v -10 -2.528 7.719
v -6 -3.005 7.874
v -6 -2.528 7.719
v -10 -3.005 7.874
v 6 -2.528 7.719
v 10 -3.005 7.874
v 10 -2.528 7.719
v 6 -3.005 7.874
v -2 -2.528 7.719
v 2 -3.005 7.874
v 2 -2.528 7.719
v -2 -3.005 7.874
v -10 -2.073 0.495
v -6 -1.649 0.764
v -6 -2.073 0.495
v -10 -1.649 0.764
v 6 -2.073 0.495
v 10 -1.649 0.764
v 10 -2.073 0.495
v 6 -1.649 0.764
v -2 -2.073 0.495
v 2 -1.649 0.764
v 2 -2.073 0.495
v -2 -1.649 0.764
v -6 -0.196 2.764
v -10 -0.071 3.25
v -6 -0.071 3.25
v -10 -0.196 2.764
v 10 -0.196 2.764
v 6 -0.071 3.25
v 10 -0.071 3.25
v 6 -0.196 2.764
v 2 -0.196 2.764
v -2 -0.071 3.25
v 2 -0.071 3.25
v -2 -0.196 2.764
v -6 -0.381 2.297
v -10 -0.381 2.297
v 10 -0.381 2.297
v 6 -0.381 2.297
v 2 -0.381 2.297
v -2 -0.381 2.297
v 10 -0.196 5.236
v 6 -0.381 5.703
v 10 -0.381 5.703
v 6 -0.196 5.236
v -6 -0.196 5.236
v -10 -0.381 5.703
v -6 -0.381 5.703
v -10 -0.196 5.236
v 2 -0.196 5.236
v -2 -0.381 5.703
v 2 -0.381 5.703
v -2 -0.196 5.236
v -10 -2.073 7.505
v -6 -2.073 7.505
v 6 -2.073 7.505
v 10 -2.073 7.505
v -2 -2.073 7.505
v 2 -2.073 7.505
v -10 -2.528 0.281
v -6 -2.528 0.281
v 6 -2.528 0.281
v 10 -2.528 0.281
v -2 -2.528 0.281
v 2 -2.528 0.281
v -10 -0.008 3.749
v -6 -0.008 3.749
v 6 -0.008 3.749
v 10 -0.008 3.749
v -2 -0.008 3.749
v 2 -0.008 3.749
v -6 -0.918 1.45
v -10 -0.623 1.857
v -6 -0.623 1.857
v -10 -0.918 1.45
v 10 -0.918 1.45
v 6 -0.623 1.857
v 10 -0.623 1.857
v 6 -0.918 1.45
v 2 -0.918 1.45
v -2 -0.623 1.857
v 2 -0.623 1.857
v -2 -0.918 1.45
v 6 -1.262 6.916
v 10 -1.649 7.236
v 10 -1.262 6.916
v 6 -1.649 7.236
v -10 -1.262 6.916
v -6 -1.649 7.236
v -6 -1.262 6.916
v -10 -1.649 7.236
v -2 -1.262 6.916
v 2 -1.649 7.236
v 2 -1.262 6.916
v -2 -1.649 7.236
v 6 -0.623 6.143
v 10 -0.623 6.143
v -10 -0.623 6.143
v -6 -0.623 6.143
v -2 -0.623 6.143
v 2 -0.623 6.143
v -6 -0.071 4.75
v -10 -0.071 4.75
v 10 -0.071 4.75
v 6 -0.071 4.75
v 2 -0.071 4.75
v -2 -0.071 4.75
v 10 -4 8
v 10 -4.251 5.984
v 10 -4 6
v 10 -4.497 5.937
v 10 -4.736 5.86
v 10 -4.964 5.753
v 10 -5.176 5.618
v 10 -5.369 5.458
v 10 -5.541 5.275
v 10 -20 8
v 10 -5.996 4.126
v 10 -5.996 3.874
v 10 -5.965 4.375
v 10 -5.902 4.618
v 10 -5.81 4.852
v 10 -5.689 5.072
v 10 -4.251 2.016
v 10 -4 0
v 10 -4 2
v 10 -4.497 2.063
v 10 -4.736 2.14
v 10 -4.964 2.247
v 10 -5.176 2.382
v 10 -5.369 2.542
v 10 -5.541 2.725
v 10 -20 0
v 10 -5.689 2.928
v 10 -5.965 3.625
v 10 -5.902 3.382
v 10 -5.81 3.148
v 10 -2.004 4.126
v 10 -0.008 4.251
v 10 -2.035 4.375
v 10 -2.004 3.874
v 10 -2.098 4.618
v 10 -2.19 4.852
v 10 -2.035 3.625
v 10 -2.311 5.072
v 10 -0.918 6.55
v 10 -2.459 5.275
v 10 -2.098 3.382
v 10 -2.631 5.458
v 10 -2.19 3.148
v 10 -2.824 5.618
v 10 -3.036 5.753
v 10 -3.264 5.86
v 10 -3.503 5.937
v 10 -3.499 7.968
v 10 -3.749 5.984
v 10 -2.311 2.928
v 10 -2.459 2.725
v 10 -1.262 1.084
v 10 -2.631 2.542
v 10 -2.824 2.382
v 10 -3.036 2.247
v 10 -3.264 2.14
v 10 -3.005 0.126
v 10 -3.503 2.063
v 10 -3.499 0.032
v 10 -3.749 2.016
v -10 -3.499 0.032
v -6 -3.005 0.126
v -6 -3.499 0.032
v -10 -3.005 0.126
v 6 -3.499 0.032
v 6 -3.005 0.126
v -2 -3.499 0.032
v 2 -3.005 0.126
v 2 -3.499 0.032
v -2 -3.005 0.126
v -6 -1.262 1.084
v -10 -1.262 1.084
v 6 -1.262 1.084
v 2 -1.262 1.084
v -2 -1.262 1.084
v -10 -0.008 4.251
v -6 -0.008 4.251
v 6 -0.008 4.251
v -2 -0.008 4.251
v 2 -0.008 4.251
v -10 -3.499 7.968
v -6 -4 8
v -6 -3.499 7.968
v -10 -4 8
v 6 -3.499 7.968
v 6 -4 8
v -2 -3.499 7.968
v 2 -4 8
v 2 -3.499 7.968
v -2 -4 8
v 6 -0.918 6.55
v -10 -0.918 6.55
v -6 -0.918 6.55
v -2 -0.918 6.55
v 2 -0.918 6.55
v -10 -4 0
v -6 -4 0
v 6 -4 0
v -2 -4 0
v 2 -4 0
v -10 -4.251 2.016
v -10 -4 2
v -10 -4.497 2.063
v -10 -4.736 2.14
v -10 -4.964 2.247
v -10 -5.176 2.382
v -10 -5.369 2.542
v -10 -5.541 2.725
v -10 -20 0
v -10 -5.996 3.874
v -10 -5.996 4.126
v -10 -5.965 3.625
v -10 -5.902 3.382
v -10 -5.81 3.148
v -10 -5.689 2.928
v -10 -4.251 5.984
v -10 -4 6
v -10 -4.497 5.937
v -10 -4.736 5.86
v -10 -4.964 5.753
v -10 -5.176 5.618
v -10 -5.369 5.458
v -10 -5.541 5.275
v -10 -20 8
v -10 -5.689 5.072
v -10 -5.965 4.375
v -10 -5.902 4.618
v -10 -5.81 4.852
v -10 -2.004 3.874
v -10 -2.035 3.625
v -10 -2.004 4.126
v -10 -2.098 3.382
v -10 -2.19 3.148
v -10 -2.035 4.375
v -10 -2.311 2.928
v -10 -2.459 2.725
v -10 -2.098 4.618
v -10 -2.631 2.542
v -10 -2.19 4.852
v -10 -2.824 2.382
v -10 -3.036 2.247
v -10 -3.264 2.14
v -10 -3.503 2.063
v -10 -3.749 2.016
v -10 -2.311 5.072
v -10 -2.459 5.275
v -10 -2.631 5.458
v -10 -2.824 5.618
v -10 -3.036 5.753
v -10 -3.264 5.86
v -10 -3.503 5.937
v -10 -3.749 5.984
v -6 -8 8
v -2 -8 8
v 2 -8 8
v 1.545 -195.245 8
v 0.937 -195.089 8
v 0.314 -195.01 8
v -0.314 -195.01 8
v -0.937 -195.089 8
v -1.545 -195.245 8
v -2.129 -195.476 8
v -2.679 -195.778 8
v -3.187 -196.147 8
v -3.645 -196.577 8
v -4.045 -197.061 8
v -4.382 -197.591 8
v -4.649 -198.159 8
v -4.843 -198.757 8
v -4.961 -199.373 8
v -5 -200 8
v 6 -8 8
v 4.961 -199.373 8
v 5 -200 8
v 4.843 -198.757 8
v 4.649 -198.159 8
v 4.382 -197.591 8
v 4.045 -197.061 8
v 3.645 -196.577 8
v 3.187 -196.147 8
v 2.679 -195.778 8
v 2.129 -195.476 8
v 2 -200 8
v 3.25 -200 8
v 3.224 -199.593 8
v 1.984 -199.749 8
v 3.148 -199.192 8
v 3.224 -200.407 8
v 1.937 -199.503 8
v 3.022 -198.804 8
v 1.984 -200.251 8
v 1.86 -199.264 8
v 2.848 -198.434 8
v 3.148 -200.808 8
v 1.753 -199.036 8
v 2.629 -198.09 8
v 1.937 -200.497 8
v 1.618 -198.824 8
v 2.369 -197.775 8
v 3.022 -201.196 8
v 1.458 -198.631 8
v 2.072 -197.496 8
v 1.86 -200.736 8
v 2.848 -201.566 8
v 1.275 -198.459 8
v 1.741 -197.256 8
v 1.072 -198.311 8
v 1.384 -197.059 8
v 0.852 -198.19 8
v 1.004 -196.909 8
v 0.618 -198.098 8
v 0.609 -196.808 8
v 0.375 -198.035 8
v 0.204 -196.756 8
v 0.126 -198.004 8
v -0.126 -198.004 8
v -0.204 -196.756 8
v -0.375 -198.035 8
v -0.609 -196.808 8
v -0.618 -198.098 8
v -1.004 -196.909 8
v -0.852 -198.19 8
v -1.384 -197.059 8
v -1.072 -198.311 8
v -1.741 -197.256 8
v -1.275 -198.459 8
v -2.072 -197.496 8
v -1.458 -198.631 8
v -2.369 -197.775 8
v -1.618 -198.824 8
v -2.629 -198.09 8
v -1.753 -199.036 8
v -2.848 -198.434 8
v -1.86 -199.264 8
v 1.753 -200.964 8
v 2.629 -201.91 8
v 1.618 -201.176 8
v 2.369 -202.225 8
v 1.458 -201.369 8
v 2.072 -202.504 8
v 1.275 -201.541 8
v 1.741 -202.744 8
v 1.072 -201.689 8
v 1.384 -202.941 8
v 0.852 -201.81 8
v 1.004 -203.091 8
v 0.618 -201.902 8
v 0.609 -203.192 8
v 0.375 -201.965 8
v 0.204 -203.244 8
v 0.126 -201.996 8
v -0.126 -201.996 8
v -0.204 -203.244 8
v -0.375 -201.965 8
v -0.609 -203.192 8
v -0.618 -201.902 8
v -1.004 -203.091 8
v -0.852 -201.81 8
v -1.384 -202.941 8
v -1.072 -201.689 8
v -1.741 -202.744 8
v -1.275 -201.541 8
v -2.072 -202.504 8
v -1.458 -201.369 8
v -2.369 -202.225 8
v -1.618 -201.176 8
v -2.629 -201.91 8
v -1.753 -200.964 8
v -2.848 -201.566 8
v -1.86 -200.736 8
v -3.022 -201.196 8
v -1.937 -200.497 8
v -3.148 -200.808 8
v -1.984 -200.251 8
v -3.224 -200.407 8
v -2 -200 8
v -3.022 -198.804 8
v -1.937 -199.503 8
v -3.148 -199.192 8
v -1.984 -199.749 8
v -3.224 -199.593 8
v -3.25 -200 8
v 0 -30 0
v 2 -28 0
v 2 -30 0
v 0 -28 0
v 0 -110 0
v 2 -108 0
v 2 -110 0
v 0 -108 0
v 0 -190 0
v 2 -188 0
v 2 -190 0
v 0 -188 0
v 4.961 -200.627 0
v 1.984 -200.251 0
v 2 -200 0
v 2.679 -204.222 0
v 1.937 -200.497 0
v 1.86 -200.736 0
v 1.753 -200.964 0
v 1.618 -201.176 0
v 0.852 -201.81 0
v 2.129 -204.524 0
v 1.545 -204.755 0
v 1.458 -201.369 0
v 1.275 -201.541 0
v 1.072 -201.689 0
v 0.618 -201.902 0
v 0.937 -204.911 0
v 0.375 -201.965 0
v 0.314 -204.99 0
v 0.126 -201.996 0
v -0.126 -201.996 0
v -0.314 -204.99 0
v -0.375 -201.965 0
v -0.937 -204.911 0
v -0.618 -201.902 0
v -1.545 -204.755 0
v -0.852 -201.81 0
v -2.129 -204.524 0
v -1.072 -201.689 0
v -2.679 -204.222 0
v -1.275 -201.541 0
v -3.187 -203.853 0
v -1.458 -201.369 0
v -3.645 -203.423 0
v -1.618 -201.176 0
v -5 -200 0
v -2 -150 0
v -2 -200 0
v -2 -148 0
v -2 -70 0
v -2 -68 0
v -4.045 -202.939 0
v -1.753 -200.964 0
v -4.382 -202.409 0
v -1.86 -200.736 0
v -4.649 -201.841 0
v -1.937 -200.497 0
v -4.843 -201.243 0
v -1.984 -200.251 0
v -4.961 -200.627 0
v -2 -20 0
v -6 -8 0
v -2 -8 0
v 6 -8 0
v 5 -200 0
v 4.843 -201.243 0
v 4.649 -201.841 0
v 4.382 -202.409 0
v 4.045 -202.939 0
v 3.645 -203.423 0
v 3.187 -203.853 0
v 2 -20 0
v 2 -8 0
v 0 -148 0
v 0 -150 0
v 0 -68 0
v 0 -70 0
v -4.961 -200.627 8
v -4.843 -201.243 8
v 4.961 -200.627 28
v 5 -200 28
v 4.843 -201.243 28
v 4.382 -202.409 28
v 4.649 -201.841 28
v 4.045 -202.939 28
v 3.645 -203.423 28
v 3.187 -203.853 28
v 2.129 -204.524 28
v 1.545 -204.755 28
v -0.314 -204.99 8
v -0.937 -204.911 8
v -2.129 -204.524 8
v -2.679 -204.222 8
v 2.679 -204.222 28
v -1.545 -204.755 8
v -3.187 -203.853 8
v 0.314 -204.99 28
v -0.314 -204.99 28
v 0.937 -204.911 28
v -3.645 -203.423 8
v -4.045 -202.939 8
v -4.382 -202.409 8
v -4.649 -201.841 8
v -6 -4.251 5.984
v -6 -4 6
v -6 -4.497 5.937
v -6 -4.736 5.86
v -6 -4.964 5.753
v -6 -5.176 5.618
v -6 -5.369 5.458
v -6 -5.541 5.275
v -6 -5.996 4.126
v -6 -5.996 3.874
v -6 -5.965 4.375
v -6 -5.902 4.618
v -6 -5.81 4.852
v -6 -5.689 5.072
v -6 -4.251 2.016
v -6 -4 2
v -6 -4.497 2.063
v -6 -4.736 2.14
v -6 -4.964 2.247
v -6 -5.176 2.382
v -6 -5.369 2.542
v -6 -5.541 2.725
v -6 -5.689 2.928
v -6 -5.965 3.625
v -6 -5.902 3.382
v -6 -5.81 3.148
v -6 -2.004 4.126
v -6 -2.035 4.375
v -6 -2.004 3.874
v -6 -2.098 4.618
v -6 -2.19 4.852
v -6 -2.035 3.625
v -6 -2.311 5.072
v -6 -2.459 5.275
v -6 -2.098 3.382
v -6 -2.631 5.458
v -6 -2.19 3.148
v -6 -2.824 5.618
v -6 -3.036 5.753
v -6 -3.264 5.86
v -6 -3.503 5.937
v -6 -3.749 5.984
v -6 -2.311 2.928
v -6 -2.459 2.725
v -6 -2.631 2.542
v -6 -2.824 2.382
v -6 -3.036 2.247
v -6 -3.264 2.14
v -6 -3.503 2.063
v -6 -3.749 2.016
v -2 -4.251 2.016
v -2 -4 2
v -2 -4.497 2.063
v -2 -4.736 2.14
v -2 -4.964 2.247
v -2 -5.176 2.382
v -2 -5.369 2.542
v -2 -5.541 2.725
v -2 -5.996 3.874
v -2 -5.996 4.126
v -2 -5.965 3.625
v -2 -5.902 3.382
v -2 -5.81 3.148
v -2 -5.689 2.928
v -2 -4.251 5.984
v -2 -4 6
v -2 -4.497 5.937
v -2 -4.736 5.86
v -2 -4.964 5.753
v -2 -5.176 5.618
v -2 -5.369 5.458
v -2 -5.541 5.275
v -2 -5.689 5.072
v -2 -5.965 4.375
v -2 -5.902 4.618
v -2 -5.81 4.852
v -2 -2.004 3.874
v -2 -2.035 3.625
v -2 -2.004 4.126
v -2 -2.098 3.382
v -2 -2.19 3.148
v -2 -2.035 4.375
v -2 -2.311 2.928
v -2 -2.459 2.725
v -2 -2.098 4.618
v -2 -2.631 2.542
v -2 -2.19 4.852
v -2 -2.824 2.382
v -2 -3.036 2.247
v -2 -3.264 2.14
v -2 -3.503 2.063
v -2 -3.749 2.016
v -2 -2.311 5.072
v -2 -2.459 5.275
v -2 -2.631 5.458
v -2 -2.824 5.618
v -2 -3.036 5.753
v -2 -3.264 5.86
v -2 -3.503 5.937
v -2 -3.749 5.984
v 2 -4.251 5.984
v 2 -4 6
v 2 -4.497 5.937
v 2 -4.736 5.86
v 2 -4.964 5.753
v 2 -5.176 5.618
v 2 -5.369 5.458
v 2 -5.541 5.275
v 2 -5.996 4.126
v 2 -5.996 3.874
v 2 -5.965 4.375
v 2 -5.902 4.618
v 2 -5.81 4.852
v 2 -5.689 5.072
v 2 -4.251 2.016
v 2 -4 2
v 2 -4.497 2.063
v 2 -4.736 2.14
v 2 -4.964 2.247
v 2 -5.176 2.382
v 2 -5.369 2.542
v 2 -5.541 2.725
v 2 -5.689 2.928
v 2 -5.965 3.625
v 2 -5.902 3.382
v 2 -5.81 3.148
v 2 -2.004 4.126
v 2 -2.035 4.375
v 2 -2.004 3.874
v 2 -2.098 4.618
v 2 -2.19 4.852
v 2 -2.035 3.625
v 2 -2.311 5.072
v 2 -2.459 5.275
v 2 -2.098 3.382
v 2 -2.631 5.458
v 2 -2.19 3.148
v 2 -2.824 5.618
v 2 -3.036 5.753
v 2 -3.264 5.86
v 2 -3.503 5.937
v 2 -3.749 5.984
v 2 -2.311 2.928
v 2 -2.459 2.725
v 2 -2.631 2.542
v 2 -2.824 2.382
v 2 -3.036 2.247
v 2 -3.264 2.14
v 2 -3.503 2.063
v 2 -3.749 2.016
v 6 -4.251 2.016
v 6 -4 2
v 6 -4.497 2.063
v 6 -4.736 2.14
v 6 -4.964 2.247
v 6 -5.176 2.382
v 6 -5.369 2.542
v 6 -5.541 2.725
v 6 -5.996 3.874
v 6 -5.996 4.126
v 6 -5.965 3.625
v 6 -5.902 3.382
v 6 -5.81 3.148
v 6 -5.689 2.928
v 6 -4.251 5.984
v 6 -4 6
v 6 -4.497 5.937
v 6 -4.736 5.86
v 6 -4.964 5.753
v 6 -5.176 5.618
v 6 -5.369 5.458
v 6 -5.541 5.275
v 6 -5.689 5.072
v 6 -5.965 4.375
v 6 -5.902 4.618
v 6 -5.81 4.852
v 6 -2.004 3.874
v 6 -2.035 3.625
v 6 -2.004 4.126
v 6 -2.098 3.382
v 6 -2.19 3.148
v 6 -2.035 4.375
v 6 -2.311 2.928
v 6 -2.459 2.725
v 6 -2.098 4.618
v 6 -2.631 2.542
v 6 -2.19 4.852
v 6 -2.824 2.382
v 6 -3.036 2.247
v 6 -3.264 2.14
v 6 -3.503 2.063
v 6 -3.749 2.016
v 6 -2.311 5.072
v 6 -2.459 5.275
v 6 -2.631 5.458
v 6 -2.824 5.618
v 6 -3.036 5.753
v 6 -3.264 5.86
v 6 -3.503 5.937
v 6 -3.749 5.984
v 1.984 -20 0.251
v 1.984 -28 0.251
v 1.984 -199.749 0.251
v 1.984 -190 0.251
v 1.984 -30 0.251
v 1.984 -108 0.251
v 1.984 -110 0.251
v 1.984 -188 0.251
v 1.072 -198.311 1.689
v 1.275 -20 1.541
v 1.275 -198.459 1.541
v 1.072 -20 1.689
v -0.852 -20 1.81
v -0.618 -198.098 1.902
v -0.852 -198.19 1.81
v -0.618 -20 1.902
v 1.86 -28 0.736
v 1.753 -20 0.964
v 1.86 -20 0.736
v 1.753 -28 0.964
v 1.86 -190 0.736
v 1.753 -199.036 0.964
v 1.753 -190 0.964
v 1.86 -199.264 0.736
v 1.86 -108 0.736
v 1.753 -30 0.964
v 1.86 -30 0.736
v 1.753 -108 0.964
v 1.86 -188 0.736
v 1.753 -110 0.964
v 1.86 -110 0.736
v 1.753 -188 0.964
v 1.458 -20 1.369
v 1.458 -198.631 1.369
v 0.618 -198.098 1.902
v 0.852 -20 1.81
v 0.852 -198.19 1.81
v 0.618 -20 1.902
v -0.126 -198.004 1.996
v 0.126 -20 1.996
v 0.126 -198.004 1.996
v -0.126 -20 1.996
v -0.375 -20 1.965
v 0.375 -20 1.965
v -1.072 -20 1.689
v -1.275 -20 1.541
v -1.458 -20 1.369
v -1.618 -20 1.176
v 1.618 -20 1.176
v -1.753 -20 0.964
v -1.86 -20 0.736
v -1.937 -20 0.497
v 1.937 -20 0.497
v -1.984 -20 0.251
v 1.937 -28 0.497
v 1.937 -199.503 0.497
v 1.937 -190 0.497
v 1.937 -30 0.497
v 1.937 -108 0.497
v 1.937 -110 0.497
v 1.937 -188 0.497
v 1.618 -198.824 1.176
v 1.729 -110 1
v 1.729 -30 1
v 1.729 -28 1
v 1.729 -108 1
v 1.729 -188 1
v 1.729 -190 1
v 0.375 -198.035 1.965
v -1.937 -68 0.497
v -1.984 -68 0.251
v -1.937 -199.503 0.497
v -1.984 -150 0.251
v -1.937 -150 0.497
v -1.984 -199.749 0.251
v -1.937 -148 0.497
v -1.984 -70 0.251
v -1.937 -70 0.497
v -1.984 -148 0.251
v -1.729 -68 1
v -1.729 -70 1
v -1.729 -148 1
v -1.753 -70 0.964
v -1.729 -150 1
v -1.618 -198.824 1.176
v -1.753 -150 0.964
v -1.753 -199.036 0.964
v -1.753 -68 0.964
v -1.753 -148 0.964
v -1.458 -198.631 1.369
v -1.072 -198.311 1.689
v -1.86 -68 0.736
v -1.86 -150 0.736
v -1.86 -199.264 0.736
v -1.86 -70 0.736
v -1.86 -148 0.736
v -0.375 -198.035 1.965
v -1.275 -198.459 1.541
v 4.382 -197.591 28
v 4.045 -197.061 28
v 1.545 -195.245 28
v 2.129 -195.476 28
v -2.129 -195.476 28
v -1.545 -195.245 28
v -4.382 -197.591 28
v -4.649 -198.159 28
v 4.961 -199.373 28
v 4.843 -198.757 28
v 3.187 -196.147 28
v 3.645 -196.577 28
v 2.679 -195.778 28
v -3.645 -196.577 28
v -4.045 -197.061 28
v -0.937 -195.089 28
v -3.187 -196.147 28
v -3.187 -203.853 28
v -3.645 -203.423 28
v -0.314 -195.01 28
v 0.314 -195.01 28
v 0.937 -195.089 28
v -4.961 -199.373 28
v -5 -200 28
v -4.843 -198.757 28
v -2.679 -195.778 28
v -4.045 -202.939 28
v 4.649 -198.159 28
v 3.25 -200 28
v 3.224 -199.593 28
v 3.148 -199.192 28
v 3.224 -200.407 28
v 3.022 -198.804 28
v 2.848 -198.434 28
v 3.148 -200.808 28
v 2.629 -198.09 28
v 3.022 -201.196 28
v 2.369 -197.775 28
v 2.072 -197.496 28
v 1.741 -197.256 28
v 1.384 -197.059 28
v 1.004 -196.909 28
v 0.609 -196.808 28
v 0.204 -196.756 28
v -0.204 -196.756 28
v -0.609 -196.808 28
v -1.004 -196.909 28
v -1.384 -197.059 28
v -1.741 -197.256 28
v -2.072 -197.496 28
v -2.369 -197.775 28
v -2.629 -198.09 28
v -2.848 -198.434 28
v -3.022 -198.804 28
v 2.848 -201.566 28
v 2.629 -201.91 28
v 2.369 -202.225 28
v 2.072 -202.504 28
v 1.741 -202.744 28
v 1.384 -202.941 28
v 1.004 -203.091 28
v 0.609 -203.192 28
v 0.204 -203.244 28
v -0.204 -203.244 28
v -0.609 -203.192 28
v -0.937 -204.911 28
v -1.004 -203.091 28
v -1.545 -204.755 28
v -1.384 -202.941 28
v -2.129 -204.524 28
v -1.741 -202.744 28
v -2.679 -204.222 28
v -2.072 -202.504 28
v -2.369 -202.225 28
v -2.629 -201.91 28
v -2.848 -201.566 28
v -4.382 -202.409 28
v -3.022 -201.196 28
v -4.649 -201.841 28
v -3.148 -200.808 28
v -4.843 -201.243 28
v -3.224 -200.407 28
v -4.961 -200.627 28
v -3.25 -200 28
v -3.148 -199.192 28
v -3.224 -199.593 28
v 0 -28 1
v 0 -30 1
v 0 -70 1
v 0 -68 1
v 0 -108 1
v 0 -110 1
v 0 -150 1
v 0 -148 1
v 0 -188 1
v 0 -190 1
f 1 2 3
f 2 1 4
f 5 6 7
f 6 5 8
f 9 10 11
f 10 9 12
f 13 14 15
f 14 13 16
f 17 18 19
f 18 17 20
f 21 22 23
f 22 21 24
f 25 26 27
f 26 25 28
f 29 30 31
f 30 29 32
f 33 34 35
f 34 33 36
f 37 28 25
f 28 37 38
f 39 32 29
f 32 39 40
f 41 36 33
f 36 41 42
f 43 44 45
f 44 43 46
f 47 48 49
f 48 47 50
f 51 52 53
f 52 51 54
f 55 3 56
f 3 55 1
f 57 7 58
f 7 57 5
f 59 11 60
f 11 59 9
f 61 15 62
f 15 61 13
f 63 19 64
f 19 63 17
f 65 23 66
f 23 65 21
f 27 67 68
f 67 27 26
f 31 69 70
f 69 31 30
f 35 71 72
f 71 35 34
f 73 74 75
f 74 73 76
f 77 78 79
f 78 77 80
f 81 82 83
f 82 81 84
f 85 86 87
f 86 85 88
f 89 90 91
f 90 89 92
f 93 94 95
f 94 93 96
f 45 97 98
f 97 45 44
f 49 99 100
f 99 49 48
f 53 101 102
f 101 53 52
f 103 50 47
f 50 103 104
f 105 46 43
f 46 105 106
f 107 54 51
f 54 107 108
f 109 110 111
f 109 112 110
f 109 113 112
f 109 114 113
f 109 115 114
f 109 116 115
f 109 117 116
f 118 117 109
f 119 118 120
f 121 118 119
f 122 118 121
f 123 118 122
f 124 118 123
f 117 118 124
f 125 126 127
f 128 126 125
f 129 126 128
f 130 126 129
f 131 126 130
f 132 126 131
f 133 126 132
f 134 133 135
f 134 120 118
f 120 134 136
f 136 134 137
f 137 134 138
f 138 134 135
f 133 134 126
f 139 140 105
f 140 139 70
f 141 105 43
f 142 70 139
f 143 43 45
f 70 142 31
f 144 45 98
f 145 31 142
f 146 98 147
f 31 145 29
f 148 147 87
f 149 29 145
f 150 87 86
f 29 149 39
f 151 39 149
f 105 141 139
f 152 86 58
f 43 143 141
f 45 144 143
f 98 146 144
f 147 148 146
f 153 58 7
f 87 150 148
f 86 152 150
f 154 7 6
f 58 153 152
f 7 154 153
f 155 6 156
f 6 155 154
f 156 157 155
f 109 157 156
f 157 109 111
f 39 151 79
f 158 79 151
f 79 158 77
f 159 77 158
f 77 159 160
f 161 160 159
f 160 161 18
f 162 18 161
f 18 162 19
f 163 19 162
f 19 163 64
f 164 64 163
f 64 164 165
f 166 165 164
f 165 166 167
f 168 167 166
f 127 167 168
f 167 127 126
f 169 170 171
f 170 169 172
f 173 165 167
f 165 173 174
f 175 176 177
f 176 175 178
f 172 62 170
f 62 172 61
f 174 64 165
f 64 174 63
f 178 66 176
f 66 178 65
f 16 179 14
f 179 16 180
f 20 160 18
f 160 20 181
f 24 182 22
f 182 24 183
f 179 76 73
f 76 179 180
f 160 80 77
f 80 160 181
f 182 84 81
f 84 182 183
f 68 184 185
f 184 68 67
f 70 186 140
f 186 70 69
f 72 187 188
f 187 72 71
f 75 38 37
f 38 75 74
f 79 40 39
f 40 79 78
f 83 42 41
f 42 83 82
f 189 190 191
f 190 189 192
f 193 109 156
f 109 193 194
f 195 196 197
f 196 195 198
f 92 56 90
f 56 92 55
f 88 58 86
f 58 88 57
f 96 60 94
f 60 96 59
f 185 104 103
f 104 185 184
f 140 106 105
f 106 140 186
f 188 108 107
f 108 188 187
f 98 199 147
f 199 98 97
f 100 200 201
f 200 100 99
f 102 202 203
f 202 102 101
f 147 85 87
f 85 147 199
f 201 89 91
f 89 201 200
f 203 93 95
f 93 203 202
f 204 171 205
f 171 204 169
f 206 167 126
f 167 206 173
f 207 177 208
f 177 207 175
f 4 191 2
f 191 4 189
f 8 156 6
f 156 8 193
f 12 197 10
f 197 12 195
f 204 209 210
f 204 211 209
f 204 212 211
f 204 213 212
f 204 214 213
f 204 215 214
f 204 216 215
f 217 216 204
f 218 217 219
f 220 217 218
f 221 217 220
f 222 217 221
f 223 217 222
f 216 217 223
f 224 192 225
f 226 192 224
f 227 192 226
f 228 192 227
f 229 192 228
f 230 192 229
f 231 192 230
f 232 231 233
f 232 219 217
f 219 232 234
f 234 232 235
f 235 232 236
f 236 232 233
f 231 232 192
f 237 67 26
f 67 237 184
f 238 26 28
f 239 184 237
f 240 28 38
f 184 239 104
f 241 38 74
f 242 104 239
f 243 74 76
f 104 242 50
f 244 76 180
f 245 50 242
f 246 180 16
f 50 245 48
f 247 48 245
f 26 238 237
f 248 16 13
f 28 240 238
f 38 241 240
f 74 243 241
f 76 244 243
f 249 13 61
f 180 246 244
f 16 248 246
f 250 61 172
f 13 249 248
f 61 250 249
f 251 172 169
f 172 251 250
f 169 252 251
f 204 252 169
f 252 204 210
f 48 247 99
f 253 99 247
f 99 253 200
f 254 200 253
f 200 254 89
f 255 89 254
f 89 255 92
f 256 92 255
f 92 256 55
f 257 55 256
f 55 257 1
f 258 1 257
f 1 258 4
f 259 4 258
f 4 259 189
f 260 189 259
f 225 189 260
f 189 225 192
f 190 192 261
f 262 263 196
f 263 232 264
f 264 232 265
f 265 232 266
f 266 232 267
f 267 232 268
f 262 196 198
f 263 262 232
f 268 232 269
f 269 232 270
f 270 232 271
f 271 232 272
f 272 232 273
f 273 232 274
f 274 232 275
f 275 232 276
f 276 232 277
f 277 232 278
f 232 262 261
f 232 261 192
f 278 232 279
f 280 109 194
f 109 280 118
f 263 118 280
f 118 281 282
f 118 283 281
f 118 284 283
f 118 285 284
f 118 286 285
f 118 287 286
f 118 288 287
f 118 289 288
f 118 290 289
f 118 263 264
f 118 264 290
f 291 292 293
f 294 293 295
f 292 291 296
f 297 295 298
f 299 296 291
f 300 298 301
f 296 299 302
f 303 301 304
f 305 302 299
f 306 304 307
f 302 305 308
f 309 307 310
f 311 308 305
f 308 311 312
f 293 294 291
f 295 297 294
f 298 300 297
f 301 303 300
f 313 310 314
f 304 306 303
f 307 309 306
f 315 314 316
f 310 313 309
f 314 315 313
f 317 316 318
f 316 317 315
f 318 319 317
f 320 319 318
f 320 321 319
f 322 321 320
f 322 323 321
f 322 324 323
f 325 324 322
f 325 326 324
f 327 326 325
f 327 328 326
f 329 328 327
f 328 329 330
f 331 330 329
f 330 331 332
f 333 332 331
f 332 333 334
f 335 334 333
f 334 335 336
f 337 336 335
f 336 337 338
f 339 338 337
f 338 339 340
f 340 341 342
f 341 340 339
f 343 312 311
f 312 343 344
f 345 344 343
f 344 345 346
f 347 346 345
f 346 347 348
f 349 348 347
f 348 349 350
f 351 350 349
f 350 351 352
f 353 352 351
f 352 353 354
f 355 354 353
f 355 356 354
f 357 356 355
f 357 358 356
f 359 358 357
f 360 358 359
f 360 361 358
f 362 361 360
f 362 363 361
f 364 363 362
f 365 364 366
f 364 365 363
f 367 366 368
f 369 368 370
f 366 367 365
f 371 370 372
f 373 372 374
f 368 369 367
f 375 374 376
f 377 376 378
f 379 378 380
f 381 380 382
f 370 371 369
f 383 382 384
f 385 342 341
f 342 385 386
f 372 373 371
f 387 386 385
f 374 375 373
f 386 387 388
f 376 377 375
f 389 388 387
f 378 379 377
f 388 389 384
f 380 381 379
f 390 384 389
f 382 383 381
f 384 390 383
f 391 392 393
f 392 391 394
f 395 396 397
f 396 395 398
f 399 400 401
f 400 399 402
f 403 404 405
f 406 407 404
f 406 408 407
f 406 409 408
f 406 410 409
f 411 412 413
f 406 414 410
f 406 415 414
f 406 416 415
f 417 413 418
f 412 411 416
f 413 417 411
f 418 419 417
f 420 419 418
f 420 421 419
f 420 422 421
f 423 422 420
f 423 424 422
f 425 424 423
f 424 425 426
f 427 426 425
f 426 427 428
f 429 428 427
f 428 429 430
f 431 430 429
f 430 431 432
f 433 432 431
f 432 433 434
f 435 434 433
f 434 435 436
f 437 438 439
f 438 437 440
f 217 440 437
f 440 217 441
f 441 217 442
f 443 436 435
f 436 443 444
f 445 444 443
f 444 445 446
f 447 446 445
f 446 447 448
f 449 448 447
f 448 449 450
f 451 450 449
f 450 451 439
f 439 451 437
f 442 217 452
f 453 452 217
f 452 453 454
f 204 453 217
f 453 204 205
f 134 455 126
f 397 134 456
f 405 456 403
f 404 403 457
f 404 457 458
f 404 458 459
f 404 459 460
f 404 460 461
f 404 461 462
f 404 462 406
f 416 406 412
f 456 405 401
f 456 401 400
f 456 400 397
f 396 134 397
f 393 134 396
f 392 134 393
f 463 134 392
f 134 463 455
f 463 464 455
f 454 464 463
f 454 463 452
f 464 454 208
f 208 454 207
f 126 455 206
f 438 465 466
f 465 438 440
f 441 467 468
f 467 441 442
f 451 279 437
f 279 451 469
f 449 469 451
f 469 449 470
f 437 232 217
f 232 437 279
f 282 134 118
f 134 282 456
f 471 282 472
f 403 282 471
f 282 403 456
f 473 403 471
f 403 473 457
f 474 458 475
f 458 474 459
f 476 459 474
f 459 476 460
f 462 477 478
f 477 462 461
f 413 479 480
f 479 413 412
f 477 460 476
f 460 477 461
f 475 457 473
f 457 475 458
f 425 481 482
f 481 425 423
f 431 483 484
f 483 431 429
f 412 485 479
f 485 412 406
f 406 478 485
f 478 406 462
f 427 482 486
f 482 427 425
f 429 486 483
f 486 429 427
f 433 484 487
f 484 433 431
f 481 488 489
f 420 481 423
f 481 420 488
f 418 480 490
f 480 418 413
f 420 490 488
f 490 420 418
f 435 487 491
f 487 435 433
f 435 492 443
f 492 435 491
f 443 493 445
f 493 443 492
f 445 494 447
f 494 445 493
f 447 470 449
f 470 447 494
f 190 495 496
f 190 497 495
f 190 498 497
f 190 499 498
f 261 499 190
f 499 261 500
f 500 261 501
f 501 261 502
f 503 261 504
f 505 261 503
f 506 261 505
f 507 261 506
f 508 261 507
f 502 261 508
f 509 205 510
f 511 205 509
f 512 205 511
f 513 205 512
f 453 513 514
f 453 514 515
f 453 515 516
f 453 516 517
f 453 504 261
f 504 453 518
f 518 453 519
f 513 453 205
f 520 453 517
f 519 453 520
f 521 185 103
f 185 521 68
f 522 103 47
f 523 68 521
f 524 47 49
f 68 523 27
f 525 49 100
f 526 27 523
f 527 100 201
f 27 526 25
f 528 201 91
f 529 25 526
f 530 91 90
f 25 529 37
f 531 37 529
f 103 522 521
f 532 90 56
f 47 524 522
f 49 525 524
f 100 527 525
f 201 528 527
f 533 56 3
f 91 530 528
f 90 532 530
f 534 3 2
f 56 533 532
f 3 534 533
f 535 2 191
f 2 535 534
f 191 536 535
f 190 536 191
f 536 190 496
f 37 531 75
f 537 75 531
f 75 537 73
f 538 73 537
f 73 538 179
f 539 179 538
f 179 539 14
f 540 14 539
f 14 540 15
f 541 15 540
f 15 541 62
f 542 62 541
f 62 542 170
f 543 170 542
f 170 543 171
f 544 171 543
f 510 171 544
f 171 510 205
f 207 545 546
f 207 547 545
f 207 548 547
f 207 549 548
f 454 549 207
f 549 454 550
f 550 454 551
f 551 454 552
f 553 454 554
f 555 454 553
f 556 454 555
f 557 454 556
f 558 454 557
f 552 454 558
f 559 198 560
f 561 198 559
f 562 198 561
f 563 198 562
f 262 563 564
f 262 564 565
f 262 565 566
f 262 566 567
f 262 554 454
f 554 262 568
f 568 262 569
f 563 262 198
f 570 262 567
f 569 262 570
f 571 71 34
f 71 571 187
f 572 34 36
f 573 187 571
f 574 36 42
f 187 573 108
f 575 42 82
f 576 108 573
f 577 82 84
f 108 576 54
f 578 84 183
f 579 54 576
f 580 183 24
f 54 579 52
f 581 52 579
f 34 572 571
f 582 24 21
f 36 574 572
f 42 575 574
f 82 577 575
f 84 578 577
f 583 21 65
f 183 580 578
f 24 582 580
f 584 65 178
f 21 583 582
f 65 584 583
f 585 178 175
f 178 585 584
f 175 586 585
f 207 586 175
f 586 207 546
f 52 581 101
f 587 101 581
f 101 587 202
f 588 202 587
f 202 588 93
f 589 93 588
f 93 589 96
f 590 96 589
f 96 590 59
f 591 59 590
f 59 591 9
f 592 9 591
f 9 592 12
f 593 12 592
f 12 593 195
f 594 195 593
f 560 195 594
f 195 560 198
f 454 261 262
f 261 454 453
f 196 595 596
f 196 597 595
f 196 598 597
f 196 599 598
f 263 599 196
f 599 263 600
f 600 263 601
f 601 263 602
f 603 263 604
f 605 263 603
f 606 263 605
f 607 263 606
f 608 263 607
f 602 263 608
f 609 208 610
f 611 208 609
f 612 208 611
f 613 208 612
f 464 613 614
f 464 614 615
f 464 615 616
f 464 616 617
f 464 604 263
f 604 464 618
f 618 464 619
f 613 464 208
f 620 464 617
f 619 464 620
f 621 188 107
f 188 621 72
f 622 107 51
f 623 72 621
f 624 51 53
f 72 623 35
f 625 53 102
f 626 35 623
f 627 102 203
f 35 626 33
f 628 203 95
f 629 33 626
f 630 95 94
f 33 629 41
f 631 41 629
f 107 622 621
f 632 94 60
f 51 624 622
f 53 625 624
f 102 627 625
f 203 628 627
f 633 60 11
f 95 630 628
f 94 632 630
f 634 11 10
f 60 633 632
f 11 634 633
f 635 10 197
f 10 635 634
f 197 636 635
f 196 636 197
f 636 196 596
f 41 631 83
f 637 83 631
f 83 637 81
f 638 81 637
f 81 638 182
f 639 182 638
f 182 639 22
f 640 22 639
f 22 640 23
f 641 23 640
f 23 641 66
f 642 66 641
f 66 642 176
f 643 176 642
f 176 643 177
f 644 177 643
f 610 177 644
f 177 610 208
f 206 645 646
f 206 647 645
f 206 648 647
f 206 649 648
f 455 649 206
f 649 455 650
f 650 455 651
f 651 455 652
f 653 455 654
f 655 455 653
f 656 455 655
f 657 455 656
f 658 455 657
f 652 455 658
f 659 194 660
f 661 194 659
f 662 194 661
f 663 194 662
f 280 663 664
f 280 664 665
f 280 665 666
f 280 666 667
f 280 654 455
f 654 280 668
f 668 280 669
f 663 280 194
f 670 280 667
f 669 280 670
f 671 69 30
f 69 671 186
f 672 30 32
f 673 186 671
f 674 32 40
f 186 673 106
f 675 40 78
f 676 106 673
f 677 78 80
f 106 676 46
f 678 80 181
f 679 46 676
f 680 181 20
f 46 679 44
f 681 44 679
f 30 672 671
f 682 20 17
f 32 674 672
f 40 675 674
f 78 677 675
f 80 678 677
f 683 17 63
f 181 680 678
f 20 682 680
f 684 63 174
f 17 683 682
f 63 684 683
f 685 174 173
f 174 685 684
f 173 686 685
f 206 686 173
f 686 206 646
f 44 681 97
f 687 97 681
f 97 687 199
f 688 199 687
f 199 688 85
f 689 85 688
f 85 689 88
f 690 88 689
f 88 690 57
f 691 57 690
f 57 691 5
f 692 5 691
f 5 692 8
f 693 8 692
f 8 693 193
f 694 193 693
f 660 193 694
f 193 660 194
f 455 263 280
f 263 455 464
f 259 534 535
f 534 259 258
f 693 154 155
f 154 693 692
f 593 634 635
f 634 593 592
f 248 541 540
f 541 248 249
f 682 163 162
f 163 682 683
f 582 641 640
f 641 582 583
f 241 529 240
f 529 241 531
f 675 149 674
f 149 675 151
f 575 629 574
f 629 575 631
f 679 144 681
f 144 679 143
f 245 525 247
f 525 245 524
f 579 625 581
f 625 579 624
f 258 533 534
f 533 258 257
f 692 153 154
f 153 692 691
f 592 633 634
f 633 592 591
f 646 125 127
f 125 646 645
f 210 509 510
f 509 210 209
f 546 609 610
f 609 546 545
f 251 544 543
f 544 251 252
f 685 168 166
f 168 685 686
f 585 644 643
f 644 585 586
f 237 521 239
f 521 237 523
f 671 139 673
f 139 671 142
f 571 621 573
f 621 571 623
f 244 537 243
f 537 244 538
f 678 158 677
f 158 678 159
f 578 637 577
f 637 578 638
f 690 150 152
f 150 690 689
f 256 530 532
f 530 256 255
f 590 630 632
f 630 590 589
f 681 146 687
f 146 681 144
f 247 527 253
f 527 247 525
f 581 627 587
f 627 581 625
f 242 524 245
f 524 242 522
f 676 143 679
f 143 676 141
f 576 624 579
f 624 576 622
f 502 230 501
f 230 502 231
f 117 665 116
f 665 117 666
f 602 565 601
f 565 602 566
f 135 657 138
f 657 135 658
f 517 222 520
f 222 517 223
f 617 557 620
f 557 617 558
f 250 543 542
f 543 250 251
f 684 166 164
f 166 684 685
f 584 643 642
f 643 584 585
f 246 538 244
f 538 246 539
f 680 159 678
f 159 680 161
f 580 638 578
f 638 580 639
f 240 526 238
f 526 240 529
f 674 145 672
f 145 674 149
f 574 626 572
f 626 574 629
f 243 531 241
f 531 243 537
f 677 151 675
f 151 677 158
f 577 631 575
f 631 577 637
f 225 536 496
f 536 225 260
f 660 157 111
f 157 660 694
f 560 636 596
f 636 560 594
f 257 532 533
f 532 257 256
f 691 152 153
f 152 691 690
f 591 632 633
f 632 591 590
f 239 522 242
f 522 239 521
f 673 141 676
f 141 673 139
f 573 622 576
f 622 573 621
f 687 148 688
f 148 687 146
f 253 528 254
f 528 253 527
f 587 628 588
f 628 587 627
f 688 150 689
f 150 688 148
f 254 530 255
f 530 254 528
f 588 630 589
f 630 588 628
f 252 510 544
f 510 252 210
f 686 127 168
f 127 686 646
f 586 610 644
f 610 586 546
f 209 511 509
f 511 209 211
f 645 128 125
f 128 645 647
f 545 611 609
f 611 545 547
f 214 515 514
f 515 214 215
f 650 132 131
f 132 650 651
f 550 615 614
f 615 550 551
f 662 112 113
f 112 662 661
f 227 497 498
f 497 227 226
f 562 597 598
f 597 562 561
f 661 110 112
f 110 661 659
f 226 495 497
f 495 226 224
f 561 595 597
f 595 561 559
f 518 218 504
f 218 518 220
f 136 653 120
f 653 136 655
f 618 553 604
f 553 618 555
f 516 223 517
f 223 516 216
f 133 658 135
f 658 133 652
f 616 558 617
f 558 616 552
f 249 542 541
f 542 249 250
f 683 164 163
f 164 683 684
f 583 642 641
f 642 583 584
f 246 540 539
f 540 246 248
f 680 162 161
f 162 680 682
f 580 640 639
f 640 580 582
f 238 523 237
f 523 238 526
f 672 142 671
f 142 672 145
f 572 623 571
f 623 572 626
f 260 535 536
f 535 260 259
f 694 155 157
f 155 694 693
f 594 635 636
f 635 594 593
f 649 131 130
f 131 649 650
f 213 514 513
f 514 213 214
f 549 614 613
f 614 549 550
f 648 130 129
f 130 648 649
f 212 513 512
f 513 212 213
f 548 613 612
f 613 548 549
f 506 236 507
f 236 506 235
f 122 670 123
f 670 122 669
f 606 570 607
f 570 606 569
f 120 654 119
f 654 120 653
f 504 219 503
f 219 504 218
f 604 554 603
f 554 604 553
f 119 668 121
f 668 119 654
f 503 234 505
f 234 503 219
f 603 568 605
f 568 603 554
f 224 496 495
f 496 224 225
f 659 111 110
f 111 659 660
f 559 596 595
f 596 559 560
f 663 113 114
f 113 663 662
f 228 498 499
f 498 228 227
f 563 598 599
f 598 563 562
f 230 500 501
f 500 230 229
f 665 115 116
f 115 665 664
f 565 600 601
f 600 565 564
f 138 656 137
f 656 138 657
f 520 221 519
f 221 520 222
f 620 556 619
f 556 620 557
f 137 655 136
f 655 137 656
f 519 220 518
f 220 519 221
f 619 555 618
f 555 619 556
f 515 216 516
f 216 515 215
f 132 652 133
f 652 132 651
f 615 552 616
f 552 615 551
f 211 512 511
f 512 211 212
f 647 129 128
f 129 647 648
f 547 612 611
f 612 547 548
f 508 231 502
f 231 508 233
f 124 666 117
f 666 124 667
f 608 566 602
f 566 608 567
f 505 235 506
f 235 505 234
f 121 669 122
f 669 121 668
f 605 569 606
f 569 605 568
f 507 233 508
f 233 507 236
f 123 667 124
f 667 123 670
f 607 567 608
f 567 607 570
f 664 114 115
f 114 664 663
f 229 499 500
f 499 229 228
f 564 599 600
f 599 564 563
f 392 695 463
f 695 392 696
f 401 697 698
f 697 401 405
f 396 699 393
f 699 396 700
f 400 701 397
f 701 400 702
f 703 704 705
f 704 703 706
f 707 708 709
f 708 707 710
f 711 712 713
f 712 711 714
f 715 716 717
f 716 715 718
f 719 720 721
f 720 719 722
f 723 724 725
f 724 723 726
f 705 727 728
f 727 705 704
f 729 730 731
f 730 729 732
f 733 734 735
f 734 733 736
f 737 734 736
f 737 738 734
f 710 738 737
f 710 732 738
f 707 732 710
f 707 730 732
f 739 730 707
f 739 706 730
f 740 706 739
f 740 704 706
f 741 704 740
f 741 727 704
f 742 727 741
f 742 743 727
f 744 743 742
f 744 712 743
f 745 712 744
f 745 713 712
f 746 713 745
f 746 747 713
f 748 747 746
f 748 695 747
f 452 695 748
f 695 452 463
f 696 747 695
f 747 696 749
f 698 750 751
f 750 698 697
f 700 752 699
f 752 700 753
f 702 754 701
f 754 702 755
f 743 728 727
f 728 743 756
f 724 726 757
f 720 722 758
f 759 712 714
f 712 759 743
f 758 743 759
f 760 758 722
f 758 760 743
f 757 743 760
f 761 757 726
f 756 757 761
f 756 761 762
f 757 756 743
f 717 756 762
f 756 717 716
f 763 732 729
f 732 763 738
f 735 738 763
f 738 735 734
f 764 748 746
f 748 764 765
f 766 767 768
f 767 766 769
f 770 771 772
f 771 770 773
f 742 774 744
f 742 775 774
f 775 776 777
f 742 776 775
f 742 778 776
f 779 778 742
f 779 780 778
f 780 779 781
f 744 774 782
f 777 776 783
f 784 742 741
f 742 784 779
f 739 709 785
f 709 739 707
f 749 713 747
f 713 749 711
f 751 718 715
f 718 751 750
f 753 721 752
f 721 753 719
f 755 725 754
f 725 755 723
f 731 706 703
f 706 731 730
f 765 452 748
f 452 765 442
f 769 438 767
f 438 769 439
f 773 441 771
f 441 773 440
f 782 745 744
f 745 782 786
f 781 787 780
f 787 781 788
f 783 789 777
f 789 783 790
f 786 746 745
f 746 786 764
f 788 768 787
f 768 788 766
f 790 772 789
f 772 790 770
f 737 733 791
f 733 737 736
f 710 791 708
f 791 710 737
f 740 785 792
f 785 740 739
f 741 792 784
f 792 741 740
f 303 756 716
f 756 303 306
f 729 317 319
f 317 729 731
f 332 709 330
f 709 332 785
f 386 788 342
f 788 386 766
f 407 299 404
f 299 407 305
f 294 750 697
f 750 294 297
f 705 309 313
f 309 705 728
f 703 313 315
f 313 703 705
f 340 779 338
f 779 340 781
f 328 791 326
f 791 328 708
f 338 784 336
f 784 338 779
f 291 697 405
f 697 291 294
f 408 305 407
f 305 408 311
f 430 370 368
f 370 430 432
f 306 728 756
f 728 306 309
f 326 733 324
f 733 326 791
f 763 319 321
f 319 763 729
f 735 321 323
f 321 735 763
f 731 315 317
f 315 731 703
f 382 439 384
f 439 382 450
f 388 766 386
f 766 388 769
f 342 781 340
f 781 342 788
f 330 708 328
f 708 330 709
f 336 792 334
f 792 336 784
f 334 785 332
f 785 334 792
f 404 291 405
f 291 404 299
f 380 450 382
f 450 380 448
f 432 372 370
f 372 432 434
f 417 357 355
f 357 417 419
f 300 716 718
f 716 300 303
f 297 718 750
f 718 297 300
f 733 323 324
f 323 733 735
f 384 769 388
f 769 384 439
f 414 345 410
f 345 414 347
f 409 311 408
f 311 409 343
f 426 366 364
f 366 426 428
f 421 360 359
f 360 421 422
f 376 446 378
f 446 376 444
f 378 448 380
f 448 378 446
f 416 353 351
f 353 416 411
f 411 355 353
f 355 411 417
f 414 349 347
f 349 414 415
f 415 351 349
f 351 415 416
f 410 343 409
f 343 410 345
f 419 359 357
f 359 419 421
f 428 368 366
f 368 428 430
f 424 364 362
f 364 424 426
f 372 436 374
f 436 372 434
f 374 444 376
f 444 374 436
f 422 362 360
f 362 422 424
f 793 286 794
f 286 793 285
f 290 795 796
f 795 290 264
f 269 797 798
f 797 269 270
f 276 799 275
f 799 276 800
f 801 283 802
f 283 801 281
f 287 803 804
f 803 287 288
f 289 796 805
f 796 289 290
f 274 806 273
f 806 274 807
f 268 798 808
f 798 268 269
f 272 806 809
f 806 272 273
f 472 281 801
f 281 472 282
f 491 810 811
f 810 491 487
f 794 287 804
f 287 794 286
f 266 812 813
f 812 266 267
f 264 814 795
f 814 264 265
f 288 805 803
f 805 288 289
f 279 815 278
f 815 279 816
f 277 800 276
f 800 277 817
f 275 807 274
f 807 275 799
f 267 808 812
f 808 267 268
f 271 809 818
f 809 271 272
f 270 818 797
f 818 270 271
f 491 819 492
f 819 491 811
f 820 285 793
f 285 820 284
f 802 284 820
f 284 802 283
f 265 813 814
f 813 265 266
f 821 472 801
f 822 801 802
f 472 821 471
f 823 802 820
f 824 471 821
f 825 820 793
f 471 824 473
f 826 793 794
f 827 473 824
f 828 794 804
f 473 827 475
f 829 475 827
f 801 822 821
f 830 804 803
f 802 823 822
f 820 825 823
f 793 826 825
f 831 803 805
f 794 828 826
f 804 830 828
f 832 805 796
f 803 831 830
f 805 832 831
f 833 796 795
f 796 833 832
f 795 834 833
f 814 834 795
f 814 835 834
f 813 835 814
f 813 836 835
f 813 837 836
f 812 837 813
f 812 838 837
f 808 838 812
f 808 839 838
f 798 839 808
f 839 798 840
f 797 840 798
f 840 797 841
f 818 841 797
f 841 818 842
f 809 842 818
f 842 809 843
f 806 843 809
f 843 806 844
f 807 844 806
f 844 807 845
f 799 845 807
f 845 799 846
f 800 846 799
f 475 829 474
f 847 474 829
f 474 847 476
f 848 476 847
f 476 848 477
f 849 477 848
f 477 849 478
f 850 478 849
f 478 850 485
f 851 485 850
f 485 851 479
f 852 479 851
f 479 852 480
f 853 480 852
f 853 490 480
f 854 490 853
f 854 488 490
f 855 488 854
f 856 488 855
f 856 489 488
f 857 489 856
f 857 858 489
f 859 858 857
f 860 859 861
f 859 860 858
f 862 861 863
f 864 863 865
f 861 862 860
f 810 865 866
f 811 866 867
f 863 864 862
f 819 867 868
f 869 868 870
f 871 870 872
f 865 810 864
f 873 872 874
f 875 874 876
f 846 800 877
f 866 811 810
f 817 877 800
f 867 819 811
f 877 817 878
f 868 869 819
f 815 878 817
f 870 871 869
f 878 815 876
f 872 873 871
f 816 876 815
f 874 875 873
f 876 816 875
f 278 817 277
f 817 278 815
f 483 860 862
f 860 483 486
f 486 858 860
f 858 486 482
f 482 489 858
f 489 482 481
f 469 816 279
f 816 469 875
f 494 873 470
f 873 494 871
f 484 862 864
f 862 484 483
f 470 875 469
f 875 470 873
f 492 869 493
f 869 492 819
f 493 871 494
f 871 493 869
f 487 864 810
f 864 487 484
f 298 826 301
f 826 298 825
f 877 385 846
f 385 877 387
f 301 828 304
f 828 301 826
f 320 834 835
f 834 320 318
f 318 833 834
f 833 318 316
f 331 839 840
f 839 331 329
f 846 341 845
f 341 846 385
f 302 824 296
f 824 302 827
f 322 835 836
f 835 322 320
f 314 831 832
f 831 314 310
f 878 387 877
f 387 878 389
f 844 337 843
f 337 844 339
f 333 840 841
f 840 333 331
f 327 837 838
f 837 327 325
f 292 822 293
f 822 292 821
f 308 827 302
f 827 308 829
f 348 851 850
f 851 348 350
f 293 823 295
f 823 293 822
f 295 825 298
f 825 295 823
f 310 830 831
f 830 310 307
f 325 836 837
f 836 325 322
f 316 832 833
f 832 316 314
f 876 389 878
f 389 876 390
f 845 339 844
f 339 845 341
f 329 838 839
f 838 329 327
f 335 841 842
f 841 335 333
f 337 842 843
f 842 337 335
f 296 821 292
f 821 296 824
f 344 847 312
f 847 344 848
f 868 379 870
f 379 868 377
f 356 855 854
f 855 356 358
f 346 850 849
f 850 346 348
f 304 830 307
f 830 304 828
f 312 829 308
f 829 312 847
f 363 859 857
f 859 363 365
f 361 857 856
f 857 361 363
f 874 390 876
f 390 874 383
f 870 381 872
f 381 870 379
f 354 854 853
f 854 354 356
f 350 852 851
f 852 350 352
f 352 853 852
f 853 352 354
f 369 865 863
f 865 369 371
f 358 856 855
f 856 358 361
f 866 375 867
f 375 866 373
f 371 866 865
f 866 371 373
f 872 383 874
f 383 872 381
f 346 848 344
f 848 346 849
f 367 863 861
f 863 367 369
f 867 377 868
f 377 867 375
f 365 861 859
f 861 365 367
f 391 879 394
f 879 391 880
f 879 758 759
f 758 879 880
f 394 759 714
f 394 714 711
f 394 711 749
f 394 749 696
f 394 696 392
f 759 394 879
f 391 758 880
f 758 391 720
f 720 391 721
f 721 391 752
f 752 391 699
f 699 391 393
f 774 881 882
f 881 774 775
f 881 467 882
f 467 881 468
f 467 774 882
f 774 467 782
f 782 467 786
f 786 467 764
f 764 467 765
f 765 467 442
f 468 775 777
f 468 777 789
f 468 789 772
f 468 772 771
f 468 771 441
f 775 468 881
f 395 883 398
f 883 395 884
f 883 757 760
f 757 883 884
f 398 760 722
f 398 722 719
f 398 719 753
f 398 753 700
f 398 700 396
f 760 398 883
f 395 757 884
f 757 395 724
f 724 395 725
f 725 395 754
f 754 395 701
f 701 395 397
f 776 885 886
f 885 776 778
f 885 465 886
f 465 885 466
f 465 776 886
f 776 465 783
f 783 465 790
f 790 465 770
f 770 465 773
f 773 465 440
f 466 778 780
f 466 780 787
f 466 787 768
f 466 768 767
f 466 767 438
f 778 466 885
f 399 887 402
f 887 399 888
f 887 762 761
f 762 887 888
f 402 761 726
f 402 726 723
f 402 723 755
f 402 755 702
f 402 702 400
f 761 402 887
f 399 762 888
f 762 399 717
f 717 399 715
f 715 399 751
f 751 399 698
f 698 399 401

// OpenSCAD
$fn=50;

//roundedRect([10,150,5], 3);

fullWidth = 20;
w = fullWidth;
h = 8;
l = 180;
pin=4;
flange = 44;
etube = 10;
d2 = 65;
d1 = 55;
base = 2;
sensor = 20;  // Make it oversize so we can use ground-glass focussing screen
fudge = 1;

module arm()
{
    
module bar() 
{
  intersection()
  {
    linear_extrude(height=h)
      hull()
      {
        translate([fullWidth/2,-l])
          circle(r=5);
        square(size=fullWidth);
      }

    // This rounds off the hinge end
    difference()
    {
      translate([0,-l-fullWidth,0])
        cube([fullWidth,l+fullWidth*2,h]);
      difference()
      {
        translate([0,fullWidth-h/2,0])
          cube([fullWidth,h/2,h]);
        difference()
        {
          translate([0,fullWidth-h/2,h/2])
            rotate([0,90,0])
              cylinder(h=fullWidth,r=h/2);
     //     translate([0,0,0])
       //     cube([fullWidth,fullWidth,h/2]);
          translate([0,0,0])
            cube([fullWidth,fullWidth-h/2,h*2]);
        }
      }
    }
  }
}

module laserMount() 
{
  translate([fullWidth/2,-l,h])
    difference()
    {
      cylinder(h=20,r=5);
      cylinder(h=21,r=3.25);
    }
}

  translate([-w/2,-w,0])
  {
    difference()
    {
      bar();
      translate([w/5,w-h,0]) cube([w/5,h,h]);
      translate([3*w/5,w-h,0]) cube([w/5,h,h]);
      translate([0,w-h/2,h/2])
        rotate([0,90,0])
          cylinder(h=fullWidth,r=pin/2);
      // Wire channel
      translate([w/2,0,0]) rotate([90,0,0]) cylinder(h=l,r=2);
      translate([w/2,-l,0])
        cylinder(h,r=2);
    }
    // Wire retaining tabs
    translate([w/2,-10,0]) cube([3,2,1]);
    translate([w/2-3,-(l-20)/4-10,0]) cube([3,2,1]);
    translate([w/2,-l/2]) cube([3,2,1]);
    translate([w/2-3,-3*(l-20)/4-10,0]) cube([3,2,1]);
    translate([w/2,-l+10,0]) cube([3,2,1]);
    laserMount();
  }
}

module hinge()
{
  translate([-w/2,-w/2,0]) difference()
  {
    intersection()
    {
      linear_extrude(height=h)
        hull()
        {
          square(size=fullWidth);
        }

      // This rounds off the hinge end
      difference()
      {
        translate([0,-l-fullWidth,0])
          cube([fullWidth,l+fullWidth*2,h]);
        difference()
        {
          translate([0,fullWidth-h/2,h/2])
            cube([fullWidth,h/2,h/2]);
          difference()
          {
            translate([0,fullWidth-h/2,h/2])
              rotate([0,90,0])
                cylinder(h=fullWidth,r=h/2);
            translate([0,0,0])
              cube([fullWidth,fullWidth,h/2]);
            translate([0,0,0])
              cube([fullWidth,fullWidth-h/2,h*2]);
          }
        }
      }
    }
    translate([0*w/5,w-h,0]) cube([w/5,h,h]);
    translate([2*w/5,w-h,0]) cube([w/5,h,h]);
    translate([4*w/5,w-h,0]) cube([w/5,h,h]);
    translate([0,w-h/2,h/2])
      rotate([0,90,0])
        cylinder(h=fullWidth,r=pin/2);
  }
}

module arca_plate(l,h=10)
{
  translate([-38/2,,0,0])
    difference()
    {
      cube([38,l,h]);
      union()
      {
        translate([-fudge,-fudge,5])
          prism(l+fudge*2, 5+fudge, 5+fudge);
        translate([-fudge,-fudge,5])
          prism(l+fudge*2, 5+fudge, -5-fudge);
        translate([38+fudge,-fudge,5])
          prism(l+fudge*2, -5-fudge, 5+fudge);
        translate([38+fudge,-fudge,5])
          prism(l+fudge*2, -5-fudge, -5-fudge);
      }
    }
}

module sensor()
{
  translate([0,-(w/4+d2/2),0])
  {
    // Hinges for laser arms
    translate([0,0,h]) rotate([0,0,180]) hinge();
    translate([0,w/2+d2,h]) hinge();
    // Adjustor plates for laser arms
    difference() {
      translate([-w/2,-w*2,0]) roundedRect([w,w*2.5,h],2);
      translate([-w/2+4,-w*2+4,0]) cylinder(h,r=2);
      translate([w/2-4,-w*2+4,0]) cylinder(h,r=2);
    }
    difference() {
      translate([-w/2,d2,0]) roundedRect([w,w*2.5,h],2);
      translate([-w/2+4,d2+w*2.5-4,0]) cylinder(h,r=2);
      translate([w/2-4,d2+w*2.5-4,0]) cylinder(h,r=2);
    }
    // Hinge for tripod mount
    translate([-d2/2-w/4,d2/2+w/4,0]) rotate([0,0,90]) hinge();
    translate([0,w/4+d2/2,0]) 
      difference()
      {
        cylinder(r=d2/2,h=flange+etube);
        translate([0,0,flange+etube-12]) rotate([0,-90,0]) cylinder(h=100,r=2); // Screw hole
        translate([0,0,base])
          cylinder(r=d1/2,h=flange+etube+fudge);  // inside
        translate([0,0,-fudge/2])
          cylinder(r=sensor/2,h=base+fudge);  // sensor hole
      }
  }
}

module mount()
{
  translate([0,0,2*w/3]) rotate([90,0,180]) hinge();
  difference ()
  {
    arca_plate(flange+etube,10);
    linear_extrude(height=30)
      hull()
      {
        translate([0,10,0]) circle(r=2.5);
        translate([0,flange+etube-10,0]) circle(r=2.5);
      }
  }
}

arm();
//sensor();
//mount();

//Draw a prism based on a 
//right angled triangle
//l - length of prism
//w - width of triangle
//h - height of triangle
module prism(l, w, h) {
       polyhedron(points=[
               [0,0,h],           // 0    front top corner
               [0,0,0],[w,0,0],   // 1, 2 front left & right bottom corners
               [0,l,h],           // 3    back top corner
               [0,l,0],[w,l,0]    // 4, 5 back left & right bottom corners
       ], faces=[ // points for all faces must be ordered clockwise when looking in
               [0,2,1],    // top face
               [3,4,5],    // base face
               [0,1,4,3],  // h face
               [1,2,5,4],  // w face
               [0,3,5,2],  // hypotenuse face
       ]);
}

module roundedRect(size, radius)
{
    x = size[0];
    y = size[1];
    z = size[2];
    linear_extrude(height=z)
    hull()
    {
        // place 4 circles in the corners, with the given radius
        translate([(radius/2), (radius/2), 0])
        circle(r=radius);

        translate([x-(radius/2), (radius/2), 0])
        circle(r=radius);

        translate([(radius/2), y-(radius/2), 0])
        circle(r=radius);

        translate([x-(radius/2), y-(radius/2), 0])
        circle(r=radius);
    }
}
